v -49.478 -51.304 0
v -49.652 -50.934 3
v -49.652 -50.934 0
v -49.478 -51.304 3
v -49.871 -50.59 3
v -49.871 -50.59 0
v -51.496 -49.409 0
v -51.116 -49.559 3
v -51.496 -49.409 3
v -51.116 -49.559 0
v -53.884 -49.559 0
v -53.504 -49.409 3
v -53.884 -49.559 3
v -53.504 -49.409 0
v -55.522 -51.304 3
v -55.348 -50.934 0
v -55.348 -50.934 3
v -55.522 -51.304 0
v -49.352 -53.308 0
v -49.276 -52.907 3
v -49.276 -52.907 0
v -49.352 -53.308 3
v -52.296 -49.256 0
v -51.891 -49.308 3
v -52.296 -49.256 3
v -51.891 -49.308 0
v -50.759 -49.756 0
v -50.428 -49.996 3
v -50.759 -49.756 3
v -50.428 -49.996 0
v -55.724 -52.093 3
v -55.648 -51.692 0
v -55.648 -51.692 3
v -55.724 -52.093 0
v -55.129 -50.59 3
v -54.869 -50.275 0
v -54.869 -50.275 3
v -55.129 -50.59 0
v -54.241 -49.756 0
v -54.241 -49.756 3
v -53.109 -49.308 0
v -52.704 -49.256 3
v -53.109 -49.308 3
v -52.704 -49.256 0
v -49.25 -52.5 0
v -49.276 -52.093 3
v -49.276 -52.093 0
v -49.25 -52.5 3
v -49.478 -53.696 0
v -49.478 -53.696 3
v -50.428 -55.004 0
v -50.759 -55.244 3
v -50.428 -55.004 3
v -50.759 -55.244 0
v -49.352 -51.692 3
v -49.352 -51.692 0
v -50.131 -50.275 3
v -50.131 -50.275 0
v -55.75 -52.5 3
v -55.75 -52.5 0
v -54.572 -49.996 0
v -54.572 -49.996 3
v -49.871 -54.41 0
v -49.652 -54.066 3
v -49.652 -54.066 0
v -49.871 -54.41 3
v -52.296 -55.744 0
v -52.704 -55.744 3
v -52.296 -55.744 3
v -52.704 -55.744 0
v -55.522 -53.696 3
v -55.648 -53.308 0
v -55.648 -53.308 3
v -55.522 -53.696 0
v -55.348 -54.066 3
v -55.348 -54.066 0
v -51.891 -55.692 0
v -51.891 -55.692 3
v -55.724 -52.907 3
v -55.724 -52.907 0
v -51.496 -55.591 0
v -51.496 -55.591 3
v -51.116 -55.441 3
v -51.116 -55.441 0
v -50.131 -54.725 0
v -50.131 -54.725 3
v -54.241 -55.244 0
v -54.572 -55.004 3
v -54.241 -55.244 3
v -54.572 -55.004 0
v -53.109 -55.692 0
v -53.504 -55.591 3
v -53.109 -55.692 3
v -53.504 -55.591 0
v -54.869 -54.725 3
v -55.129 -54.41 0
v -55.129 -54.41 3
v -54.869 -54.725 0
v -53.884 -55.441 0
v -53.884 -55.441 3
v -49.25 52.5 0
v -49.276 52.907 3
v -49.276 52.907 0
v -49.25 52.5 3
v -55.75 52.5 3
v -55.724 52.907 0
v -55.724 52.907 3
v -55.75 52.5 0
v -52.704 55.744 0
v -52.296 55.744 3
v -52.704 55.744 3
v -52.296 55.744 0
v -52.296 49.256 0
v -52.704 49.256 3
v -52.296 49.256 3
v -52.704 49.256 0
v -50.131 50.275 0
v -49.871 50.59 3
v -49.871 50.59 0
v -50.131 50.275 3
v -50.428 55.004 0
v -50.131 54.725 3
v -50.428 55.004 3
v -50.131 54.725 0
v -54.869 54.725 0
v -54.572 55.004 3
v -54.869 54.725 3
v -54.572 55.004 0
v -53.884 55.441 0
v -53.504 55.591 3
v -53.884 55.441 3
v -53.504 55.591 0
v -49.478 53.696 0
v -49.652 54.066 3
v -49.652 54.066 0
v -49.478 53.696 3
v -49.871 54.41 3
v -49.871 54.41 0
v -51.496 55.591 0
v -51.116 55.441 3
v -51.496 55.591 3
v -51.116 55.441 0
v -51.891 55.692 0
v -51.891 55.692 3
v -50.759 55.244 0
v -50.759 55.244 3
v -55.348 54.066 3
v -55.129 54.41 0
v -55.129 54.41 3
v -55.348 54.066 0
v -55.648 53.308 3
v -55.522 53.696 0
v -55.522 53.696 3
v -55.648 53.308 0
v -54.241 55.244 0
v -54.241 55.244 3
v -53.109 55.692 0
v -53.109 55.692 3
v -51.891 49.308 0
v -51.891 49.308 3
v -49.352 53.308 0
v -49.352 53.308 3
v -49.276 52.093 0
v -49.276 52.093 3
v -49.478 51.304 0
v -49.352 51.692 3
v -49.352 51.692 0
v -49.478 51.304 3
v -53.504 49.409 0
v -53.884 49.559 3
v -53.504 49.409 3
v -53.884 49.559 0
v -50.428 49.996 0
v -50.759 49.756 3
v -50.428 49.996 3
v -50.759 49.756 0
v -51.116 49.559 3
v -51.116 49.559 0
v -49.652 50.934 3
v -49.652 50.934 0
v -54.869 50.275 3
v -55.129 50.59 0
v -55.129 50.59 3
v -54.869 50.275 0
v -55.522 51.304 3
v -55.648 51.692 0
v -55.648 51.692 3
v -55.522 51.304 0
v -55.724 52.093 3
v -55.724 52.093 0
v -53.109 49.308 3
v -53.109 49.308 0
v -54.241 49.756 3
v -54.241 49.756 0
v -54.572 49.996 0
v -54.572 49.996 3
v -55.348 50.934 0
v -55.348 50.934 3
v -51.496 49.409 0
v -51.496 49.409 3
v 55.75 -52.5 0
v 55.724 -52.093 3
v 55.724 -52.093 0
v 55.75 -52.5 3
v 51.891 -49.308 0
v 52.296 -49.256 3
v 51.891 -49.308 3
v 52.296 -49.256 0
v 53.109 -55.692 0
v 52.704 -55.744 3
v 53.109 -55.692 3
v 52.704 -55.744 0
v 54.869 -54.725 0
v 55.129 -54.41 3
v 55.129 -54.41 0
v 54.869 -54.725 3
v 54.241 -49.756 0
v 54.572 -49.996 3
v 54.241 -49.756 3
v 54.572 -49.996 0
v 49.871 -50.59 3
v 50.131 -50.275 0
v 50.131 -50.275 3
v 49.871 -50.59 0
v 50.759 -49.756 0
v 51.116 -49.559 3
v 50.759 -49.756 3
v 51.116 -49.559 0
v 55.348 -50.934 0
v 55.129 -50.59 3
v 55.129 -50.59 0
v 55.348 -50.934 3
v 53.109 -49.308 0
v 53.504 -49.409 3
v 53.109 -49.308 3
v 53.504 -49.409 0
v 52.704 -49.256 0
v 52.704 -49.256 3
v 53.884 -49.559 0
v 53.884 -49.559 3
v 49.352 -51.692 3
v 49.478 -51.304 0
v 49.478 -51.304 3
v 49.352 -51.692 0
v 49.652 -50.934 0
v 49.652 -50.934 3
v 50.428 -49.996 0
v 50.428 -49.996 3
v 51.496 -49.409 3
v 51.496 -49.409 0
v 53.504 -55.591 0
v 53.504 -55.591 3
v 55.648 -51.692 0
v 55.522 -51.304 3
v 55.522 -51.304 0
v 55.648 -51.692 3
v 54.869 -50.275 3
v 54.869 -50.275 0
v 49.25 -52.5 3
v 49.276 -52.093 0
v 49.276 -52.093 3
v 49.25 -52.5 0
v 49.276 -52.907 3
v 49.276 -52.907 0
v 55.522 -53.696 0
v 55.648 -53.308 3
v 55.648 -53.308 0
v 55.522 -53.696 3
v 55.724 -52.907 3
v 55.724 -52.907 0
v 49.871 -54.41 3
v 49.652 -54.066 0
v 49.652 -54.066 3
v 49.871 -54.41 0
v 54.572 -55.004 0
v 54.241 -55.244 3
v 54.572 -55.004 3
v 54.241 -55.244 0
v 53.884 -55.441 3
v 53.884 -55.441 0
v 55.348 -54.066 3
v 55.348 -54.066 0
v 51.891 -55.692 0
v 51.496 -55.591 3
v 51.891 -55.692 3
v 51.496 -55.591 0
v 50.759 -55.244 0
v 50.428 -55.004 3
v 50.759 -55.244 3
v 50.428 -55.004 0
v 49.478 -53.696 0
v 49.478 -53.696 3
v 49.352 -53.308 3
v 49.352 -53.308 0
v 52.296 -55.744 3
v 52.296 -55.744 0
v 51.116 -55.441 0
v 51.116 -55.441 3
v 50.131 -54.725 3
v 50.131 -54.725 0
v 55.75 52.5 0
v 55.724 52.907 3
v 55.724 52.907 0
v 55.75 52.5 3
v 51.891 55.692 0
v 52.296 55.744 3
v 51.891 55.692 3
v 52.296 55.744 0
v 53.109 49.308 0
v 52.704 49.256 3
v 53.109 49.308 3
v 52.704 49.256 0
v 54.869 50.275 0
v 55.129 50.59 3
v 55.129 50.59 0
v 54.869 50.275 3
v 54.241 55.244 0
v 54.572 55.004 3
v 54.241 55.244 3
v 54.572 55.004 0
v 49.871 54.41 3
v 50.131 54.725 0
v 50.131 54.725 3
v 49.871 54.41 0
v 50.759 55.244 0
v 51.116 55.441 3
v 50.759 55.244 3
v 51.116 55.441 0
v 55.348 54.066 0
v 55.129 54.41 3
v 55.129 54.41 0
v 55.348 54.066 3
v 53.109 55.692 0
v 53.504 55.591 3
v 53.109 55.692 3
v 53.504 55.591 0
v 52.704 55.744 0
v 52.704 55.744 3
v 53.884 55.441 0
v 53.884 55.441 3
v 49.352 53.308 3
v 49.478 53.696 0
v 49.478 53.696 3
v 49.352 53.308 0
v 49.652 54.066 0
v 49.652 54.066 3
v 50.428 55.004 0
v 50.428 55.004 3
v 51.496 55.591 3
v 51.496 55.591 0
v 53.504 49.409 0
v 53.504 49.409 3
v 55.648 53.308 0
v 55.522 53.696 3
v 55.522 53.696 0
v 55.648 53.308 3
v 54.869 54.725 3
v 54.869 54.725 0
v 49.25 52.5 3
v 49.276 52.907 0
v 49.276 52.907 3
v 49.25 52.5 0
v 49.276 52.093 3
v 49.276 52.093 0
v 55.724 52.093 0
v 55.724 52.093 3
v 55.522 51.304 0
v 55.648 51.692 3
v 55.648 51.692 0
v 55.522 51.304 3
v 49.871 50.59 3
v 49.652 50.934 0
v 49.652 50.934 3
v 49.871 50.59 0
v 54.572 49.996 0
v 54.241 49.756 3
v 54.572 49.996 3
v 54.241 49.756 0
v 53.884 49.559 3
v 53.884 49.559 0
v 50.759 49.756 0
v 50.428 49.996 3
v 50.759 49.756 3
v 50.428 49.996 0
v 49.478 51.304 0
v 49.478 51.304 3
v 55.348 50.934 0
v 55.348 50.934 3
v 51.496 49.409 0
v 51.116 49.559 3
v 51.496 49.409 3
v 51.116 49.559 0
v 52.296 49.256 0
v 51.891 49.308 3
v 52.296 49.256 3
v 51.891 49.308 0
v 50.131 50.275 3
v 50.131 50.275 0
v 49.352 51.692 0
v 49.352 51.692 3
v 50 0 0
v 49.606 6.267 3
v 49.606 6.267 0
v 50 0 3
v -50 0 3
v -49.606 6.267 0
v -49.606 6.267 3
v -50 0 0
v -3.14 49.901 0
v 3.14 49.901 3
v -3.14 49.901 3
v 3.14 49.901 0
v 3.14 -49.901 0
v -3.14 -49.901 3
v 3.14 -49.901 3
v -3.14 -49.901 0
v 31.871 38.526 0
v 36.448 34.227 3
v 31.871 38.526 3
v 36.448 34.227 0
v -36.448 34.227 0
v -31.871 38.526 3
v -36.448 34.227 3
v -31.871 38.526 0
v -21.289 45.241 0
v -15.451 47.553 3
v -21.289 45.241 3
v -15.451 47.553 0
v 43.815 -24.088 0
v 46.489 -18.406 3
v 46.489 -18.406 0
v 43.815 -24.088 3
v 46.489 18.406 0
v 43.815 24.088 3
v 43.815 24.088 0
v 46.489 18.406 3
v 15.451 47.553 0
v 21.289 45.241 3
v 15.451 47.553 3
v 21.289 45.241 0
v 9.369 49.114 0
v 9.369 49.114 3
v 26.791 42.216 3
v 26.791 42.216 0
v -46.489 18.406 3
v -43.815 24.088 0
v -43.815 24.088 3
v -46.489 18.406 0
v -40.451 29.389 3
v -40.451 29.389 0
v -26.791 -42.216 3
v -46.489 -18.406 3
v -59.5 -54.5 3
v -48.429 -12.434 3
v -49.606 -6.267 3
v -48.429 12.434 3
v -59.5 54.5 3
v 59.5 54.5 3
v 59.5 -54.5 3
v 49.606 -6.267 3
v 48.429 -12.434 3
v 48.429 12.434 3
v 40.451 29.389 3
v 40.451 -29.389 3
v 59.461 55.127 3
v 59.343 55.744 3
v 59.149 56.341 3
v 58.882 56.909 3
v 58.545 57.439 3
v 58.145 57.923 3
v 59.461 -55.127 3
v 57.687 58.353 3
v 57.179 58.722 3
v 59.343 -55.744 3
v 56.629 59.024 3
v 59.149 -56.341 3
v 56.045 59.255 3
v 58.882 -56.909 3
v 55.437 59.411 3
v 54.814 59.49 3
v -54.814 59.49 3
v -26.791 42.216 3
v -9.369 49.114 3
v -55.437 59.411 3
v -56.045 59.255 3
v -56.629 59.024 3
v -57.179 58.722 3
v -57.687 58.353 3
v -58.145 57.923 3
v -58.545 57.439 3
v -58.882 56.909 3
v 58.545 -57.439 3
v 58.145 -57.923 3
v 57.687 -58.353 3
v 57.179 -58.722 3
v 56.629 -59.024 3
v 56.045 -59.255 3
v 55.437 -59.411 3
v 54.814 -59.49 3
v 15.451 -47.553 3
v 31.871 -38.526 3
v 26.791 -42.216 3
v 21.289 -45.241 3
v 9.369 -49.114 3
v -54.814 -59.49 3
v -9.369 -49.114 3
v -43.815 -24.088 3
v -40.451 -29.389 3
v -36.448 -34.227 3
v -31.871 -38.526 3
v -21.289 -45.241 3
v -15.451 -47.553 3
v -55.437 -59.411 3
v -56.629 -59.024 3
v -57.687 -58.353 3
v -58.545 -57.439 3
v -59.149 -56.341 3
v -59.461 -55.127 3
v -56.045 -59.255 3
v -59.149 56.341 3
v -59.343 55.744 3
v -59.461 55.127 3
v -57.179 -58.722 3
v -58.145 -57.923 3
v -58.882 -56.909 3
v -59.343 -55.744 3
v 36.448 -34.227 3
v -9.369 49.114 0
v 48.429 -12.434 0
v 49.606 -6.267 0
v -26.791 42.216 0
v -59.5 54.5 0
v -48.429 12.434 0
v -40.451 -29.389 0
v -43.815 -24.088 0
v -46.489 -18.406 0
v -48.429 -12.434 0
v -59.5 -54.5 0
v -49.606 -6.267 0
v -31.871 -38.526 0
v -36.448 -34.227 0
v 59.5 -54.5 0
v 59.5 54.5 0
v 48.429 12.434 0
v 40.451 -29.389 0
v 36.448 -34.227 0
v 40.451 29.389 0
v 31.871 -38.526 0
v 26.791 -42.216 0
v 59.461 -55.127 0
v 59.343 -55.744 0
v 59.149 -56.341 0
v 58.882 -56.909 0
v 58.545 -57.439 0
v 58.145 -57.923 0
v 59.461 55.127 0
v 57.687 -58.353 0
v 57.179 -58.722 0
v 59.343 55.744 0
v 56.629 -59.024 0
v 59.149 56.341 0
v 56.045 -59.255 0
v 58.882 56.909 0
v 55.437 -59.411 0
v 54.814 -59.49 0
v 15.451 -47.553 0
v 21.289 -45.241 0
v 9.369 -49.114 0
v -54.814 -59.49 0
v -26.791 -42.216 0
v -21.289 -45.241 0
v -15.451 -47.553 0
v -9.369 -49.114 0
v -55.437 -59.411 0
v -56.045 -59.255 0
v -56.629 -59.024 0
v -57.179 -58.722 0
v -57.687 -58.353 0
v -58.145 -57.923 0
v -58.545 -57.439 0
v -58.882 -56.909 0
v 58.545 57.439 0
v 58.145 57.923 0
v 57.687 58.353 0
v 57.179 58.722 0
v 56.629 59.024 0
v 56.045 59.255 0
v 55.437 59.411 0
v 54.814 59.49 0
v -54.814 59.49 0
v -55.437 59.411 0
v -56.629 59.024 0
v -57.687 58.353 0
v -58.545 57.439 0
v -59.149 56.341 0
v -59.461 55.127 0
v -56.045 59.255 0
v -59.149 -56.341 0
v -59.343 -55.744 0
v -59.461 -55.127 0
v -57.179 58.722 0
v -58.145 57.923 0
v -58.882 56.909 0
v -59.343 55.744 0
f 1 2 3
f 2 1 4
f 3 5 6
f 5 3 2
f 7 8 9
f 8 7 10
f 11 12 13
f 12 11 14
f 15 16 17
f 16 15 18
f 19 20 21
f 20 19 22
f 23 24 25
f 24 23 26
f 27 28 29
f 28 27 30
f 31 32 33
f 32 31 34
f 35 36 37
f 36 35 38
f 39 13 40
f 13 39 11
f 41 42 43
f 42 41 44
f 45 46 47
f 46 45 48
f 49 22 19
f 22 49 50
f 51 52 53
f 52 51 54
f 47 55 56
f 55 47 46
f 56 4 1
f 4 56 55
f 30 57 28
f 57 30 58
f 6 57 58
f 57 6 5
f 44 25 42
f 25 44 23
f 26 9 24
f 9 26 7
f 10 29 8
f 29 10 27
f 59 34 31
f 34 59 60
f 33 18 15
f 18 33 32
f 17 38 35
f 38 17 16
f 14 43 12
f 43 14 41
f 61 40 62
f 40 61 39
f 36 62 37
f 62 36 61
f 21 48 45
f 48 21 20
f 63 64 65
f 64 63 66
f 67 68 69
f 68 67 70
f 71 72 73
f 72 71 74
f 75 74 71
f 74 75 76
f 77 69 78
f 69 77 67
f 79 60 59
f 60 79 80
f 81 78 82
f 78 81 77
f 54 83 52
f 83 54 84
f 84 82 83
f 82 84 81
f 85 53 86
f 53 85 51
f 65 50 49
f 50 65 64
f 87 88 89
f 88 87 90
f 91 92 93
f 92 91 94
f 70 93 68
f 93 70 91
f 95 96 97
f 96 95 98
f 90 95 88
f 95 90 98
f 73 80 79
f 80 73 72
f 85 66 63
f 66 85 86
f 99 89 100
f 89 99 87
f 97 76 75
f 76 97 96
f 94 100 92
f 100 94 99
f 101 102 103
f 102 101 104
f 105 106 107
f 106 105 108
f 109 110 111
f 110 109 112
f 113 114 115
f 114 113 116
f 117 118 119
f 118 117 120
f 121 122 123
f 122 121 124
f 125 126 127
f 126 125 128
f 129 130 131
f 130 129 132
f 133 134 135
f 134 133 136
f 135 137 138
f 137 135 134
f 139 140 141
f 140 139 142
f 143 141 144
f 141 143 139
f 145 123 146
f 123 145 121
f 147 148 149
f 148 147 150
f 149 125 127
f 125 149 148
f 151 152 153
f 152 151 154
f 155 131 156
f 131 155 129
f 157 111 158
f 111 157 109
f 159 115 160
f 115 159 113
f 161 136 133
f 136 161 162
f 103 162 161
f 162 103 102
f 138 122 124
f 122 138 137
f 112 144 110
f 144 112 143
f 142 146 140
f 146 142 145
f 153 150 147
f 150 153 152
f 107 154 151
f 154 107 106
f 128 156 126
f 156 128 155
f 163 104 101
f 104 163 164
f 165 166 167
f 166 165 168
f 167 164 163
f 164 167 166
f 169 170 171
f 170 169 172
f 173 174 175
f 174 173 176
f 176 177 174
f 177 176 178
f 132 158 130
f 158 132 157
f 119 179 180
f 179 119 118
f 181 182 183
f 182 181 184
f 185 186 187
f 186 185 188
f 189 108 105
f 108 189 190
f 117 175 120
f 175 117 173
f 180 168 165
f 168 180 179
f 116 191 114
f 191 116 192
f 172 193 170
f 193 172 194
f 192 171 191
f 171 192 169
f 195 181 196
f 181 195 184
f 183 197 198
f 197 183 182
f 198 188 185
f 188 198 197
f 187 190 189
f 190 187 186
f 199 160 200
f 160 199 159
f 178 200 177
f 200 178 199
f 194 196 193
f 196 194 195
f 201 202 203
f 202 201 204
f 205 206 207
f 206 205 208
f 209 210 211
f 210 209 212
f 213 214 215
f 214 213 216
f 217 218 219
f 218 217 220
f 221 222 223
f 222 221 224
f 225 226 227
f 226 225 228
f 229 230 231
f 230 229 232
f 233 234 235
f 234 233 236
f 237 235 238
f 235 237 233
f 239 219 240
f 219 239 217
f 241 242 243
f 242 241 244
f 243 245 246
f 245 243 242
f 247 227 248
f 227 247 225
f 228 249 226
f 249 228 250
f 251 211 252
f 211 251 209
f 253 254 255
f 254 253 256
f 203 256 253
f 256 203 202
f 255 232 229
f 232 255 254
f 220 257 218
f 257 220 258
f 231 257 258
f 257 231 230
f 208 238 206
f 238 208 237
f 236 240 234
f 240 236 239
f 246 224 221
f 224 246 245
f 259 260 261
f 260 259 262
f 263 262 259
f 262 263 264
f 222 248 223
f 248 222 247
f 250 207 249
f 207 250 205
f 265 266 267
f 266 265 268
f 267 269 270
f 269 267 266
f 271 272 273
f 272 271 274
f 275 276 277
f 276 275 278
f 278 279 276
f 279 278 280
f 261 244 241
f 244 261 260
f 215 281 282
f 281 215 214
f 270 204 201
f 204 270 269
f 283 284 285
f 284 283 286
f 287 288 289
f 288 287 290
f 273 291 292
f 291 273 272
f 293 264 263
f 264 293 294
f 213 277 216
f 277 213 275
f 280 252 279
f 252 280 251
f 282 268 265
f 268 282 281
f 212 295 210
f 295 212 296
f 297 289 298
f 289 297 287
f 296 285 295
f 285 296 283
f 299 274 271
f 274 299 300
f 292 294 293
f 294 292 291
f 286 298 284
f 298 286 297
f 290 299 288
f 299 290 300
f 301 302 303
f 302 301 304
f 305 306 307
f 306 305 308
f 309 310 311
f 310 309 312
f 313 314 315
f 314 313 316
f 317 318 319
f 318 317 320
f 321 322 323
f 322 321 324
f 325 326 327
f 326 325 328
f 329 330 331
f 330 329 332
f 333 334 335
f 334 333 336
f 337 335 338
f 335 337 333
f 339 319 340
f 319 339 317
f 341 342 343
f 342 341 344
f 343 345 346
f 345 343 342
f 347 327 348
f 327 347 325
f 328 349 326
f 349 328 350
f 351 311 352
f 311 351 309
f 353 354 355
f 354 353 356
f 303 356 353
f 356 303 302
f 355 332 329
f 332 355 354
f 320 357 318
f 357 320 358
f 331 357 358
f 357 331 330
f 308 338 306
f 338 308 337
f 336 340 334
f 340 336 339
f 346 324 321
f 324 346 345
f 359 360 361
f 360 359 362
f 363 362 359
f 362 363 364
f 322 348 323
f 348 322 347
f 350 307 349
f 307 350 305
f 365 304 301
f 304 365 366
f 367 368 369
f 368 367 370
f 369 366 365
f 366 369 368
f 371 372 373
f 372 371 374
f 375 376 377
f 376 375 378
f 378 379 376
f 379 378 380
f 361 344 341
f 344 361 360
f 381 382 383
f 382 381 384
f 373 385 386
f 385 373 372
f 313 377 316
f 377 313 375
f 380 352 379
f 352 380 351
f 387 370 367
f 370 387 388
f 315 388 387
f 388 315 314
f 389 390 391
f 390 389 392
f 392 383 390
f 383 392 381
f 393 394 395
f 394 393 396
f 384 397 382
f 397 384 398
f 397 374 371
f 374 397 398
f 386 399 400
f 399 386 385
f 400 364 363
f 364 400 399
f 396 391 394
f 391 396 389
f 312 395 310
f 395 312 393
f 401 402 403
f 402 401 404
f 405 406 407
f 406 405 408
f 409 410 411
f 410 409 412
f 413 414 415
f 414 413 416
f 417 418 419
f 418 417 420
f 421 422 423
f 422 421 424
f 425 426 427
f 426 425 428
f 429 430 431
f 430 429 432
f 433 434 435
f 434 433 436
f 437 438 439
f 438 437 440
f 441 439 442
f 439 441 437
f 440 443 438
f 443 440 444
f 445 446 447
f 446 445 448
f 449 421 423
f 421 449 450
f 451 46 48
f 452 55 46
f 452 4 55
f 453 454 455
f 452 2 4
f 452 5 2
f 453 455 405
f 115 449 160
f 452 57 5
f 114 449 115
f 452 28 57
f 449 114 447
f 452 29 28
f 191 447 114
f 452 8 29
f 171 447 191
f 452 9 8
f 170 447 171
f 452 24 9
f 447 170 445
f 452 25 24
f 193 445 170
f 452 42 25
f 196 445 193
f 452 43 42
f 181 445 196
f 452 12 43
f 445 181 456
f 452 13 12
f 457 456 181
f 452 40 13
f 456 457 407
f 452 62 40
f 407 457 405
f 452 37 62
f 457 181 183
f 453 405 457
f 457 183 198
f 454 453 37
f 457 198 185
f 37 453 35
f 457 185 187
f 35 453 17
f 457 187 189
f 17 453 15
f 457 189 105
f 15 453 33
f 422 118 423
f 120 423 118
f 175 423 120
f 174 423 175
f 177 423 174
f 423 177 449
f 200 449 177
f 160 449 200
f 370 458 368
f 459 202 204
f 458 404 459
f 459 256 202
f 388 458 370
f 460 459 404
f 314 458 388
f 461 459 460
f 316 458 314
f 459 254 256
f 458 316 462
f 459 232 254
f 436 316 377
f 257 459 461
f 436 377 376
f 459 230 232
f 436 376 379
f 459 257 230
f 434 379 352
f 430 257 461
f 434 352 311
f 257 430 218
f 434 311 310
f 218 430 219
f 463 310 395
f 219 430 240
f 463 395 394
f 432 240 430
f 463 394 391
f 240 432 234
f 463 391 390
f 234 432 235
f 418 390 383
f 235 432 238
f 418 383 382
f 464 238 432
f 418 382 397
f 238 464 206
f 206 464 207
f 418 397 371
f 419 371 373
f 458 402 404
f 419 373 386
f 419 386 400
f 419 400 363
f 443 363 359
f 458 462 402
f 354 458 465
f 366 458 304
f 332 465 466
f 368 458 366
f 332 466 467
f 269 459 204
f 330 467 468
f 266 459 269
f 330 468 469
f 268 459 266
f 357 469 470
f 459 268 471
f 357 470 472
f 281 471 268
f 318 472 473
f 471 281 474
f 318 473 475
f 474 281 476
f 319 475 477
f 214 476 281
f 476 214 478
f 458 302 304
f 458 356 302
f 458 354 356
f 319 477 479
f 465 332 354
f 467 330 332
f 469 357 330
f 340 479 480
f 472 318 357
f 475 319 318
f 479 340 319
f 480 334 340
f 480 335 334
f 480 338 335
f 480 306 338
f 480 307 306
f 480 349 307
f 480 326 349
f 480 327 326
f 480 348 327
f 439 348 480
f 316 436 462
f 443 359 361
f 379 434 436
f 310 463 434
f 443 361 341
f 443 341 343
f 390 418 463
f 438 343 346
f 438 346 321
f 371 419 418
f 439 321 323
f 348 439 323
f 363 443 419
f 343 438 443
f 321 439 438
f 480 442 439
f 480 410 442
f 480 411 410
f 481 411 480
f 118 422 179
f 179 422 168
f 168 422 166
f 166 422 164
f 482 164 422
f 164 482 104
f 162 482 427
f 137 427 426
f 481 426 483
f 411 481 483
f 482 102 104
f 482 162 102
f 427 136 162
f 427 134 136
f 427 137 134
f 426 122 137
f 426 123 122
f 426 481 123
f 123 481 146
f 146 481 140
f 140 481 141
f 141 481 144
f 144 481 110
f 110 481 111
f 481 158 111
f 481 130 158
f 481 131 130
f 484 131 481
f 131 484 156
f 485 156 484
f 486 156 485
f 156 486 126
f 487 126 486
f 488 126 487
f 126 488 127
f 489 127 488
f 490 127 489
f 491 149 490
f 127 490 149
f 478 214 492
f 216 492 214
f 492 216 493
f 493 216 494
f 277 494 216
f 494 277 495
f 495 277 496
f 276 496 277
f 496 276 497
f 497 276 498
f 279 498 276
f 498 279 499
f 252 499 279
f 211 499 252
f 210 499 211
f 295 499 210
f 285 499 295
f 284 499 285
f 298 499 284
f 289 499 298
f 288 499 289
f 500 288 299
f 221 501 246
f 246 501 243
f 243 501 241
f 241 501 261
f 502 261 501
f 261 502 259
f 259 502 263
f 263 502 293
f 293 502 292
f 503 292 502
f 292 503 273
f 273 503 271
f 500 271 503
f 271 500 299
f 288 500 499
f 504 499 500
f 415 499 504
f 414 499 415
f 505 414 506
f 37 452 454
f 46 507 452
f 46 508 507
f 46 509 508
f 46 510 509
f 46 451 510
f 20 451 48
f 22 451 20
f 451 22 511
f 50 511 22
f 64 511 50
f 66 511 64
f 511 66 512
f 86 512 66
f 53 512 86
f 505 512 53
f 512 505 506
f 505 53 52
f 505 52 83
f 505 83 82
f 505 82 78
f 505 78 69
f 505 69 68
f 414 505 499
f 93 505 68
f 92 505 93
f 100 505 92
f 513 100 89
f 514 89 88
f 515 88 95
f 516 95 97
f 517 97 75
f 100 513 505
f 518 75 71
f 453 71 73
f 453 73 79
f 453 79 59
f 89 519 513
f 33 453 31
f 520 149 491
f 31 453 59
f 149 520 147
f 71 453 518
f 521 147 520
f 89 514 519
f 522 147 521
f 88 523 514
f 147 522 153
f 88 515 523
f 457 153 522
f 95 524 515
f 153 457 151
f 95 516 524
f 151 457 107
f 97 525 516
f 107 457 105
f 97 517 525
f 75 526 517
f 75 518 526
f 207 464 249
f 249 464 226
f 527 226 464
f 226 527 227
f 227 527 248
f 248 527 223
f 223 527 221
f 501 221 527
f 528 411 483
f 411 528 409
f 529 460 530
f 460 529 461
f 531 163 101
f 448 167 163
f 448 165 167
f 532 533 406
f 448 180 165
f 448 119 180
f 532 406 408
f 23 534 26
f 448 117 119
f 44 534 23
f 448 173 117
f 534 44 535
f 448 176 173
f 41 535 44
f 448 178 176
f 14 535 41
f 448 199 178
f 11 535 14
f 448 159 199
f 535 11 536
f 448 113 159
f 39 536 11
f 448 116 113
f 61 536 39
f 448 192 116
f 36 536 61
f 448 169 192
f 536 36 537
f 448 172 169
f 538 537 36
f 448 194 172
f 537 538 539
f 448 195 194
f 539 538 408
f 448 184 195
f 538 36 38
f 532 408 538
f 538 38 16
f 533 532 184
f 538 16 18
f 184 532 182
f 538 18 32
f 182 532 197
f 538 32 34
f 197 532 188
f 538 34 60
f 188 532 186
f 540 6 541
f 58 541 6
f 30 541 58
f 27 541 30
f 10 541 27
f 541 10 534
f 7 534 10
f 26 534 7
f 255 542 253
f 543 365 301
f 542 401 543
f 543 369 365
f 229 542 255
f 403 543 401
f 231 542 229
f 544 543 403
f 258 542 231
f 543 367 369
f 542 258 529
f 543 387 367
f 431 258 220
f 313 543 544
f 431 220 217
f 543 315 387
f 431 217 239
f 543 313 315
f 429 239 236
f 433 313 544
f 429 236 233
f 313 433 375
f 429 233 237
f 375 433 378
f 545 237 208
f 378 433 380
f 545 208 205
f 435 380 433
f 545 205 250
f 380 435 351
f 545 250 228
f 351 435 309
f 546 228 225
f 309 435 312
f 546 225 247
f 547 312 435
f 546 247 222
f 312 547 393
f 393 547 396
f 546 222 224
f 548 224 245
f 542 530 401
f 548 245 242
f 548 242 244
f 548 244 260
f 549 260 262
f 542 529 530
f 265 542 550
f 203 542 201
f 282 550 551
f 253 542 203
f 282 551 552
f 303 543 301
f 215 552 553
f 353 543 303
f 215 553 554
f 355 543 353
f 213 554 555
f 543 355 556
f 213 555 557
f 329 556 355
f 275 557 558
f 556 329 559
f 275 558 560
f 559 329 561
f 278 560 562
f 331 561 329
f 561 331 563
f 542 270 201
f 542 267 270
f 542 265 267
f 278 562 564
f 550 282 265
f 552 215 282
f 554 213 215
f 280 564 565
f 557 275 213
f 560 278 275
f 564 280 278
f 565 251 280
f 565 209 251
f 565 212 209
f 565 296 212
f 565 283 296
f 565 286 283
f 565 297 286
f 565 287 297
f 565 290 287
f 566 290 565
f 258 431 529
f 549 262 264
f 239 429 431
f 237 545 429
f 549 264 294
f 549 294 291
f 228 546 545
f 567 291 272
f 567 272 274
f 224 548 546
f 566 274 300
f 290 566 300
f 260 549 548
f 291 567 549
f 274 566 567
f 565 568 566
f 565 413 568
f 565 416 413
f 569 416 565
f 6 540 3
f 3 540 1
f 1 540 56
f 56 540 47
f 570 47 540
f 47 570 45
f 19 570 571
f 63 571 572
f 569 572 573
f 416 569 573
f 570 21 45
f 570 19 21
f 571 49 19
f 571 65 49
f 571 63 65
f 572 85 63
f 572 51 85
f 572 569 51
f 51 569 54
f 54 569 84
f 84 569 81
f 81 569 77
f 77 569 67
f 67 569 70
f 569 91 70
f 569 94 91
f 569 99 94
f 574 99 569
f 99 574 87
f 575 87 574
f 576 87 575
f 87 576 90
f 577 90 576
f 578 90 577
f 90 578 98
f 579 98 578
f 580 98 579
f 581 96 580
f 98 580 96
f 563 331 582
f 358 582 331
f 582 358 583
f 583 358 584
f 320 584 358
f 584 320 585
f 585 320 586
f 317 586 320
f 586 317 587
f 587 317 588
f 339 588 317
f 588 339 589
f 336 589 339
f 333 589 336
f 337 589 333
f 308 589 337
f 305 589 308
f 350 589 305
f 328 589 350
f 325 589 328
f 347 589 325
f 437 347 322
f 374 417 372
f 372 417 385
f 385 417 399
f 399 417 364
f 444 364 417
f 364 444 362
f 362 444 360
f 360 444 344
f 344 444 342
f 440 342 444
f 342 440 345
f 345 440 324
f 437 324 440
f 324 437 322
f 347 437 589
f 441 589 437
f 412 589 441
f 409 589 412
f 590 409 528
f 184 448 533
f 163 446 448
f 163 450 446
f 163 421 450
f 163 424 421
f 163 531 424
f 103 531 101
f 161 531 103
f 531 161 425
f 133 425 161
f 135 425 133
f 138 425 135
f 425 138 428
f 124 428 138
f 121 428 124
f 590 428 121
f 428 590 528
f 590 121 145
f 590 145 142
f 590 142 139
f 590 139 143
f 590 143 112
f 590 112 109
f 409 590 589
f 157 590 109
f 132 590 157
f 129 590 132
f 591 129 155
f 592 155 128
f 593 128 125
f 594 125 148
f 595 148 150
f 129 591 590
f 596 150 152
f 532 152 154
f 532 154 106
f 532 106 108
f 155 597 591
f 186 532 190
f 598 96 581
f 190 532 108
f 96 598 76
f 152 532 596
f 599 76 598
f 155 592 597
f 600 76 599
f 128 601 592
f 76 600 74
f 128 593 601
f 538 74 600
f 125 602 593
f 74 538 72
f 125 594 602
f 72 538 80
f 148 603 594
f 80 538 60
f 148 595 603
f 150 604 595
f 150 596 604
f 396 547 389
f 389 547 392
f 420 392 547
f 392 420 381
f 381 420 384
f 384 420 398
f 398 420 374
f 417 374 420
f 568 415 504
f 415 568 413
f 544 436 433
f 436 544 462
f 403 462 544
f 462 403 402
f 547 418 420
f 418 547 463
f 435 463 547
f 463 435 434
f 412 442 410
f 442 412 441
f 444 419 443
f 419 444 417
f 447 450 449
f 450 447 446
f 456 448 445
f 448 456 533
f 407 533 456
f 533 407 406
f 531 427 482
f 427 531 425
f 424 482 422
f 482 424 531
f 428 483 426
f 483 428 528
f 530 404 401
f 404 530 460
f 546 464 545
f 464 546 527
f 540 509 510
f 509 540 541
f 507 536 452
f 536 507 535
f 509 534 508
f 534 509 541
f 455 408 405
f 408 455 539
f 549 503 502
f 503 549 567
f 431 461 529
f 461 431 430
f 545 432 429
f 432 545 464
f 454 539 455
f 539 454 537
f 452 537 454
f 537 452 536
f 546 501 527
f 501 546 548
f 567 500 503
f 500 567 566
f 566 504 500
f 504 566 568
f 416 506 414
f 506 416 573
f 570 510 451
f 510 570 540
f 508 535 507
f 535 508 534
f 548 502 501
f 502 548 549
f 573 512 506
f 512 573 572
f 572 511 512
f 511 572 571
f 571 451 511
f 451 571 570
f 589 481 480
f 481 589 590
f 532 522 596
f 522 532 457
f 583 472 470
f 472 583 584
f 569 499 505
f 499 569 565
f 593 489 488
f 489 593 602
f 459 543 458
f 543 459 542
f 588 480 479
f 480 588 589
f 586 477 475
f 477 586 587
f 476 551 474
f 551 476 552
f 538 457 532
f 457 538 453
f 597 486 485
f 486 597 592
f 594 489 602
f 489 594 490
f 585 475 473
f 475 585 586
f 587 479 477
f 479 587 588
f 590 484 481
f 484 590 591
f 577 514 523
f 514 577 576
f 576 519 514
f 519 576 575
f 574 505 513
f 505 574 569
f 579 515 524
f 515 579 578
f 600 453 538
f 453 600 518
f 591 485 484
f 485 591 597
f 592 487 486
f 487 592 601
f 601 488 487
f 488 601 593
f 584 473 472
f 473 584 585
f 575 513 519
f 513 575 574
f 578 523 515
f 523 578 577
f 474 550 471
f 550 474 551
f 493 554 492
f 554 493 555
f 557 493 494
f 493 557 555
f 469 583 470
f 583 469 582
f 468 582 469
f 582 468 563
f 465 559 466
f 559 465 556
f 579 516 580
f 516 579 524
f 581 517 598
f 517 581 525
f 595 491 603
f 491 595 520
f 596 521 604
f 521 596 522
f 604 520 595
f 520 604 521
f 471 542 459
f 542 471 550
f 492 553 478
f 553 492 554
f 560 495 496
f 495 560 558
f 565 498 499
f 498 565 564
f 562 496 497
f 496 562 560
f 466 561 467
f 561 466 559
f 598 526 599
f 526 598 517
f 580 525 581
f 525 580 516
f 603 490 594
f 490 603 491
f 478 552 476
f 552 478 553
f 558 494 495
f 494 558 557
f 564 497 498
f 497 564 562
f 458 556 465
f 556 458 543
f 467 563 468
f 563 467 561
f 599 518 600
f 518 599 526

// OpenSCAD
$fn = 50;


difference() {
	union() {
		hull() {
			translate(v = [-54.5000000000, 54.5000000000, 0]) {
				cylinder(h = 3, r = 5);
			}
			translate(v = [54.5000000000, 54.5000000000, 0]) {
				cylinder(h = 3, r = 5);
			}
			translate(v = [-54.5000000000, -54.5000000000, 0]) {
				cylinder(h = 3, r = 5);
			}
			translate(v = [54.5000000000, -54.5000000000, 0]) {
				cylinder(h = 3, r = 5);
			}
		}
	}
	union() {
		#translate(v = [-52.5000000000, -52.5000000000, -100.0000000000]) {
			cylinder(h = 200, r = 3.2500000000);
		}
		#translate(v = [-52.5000000000, 52.5000000000, -100.0000000000]) {
			cylinder(h = 200, r = 3.2500000000);
		}
		#translate(v = [52.5000000000, -52.5000000000, -100.0000000000]) {
			cylinder(h = 200, r = 3.2500000000);
		}
		#translate(v = [52.5000000000, 52.5000000000, -100.0000000000]) {
			cylinder(h = 200, r = 3.2500000000);
		}
		#cylinder(h = 3, r = 50.0000000000);
	}
}
